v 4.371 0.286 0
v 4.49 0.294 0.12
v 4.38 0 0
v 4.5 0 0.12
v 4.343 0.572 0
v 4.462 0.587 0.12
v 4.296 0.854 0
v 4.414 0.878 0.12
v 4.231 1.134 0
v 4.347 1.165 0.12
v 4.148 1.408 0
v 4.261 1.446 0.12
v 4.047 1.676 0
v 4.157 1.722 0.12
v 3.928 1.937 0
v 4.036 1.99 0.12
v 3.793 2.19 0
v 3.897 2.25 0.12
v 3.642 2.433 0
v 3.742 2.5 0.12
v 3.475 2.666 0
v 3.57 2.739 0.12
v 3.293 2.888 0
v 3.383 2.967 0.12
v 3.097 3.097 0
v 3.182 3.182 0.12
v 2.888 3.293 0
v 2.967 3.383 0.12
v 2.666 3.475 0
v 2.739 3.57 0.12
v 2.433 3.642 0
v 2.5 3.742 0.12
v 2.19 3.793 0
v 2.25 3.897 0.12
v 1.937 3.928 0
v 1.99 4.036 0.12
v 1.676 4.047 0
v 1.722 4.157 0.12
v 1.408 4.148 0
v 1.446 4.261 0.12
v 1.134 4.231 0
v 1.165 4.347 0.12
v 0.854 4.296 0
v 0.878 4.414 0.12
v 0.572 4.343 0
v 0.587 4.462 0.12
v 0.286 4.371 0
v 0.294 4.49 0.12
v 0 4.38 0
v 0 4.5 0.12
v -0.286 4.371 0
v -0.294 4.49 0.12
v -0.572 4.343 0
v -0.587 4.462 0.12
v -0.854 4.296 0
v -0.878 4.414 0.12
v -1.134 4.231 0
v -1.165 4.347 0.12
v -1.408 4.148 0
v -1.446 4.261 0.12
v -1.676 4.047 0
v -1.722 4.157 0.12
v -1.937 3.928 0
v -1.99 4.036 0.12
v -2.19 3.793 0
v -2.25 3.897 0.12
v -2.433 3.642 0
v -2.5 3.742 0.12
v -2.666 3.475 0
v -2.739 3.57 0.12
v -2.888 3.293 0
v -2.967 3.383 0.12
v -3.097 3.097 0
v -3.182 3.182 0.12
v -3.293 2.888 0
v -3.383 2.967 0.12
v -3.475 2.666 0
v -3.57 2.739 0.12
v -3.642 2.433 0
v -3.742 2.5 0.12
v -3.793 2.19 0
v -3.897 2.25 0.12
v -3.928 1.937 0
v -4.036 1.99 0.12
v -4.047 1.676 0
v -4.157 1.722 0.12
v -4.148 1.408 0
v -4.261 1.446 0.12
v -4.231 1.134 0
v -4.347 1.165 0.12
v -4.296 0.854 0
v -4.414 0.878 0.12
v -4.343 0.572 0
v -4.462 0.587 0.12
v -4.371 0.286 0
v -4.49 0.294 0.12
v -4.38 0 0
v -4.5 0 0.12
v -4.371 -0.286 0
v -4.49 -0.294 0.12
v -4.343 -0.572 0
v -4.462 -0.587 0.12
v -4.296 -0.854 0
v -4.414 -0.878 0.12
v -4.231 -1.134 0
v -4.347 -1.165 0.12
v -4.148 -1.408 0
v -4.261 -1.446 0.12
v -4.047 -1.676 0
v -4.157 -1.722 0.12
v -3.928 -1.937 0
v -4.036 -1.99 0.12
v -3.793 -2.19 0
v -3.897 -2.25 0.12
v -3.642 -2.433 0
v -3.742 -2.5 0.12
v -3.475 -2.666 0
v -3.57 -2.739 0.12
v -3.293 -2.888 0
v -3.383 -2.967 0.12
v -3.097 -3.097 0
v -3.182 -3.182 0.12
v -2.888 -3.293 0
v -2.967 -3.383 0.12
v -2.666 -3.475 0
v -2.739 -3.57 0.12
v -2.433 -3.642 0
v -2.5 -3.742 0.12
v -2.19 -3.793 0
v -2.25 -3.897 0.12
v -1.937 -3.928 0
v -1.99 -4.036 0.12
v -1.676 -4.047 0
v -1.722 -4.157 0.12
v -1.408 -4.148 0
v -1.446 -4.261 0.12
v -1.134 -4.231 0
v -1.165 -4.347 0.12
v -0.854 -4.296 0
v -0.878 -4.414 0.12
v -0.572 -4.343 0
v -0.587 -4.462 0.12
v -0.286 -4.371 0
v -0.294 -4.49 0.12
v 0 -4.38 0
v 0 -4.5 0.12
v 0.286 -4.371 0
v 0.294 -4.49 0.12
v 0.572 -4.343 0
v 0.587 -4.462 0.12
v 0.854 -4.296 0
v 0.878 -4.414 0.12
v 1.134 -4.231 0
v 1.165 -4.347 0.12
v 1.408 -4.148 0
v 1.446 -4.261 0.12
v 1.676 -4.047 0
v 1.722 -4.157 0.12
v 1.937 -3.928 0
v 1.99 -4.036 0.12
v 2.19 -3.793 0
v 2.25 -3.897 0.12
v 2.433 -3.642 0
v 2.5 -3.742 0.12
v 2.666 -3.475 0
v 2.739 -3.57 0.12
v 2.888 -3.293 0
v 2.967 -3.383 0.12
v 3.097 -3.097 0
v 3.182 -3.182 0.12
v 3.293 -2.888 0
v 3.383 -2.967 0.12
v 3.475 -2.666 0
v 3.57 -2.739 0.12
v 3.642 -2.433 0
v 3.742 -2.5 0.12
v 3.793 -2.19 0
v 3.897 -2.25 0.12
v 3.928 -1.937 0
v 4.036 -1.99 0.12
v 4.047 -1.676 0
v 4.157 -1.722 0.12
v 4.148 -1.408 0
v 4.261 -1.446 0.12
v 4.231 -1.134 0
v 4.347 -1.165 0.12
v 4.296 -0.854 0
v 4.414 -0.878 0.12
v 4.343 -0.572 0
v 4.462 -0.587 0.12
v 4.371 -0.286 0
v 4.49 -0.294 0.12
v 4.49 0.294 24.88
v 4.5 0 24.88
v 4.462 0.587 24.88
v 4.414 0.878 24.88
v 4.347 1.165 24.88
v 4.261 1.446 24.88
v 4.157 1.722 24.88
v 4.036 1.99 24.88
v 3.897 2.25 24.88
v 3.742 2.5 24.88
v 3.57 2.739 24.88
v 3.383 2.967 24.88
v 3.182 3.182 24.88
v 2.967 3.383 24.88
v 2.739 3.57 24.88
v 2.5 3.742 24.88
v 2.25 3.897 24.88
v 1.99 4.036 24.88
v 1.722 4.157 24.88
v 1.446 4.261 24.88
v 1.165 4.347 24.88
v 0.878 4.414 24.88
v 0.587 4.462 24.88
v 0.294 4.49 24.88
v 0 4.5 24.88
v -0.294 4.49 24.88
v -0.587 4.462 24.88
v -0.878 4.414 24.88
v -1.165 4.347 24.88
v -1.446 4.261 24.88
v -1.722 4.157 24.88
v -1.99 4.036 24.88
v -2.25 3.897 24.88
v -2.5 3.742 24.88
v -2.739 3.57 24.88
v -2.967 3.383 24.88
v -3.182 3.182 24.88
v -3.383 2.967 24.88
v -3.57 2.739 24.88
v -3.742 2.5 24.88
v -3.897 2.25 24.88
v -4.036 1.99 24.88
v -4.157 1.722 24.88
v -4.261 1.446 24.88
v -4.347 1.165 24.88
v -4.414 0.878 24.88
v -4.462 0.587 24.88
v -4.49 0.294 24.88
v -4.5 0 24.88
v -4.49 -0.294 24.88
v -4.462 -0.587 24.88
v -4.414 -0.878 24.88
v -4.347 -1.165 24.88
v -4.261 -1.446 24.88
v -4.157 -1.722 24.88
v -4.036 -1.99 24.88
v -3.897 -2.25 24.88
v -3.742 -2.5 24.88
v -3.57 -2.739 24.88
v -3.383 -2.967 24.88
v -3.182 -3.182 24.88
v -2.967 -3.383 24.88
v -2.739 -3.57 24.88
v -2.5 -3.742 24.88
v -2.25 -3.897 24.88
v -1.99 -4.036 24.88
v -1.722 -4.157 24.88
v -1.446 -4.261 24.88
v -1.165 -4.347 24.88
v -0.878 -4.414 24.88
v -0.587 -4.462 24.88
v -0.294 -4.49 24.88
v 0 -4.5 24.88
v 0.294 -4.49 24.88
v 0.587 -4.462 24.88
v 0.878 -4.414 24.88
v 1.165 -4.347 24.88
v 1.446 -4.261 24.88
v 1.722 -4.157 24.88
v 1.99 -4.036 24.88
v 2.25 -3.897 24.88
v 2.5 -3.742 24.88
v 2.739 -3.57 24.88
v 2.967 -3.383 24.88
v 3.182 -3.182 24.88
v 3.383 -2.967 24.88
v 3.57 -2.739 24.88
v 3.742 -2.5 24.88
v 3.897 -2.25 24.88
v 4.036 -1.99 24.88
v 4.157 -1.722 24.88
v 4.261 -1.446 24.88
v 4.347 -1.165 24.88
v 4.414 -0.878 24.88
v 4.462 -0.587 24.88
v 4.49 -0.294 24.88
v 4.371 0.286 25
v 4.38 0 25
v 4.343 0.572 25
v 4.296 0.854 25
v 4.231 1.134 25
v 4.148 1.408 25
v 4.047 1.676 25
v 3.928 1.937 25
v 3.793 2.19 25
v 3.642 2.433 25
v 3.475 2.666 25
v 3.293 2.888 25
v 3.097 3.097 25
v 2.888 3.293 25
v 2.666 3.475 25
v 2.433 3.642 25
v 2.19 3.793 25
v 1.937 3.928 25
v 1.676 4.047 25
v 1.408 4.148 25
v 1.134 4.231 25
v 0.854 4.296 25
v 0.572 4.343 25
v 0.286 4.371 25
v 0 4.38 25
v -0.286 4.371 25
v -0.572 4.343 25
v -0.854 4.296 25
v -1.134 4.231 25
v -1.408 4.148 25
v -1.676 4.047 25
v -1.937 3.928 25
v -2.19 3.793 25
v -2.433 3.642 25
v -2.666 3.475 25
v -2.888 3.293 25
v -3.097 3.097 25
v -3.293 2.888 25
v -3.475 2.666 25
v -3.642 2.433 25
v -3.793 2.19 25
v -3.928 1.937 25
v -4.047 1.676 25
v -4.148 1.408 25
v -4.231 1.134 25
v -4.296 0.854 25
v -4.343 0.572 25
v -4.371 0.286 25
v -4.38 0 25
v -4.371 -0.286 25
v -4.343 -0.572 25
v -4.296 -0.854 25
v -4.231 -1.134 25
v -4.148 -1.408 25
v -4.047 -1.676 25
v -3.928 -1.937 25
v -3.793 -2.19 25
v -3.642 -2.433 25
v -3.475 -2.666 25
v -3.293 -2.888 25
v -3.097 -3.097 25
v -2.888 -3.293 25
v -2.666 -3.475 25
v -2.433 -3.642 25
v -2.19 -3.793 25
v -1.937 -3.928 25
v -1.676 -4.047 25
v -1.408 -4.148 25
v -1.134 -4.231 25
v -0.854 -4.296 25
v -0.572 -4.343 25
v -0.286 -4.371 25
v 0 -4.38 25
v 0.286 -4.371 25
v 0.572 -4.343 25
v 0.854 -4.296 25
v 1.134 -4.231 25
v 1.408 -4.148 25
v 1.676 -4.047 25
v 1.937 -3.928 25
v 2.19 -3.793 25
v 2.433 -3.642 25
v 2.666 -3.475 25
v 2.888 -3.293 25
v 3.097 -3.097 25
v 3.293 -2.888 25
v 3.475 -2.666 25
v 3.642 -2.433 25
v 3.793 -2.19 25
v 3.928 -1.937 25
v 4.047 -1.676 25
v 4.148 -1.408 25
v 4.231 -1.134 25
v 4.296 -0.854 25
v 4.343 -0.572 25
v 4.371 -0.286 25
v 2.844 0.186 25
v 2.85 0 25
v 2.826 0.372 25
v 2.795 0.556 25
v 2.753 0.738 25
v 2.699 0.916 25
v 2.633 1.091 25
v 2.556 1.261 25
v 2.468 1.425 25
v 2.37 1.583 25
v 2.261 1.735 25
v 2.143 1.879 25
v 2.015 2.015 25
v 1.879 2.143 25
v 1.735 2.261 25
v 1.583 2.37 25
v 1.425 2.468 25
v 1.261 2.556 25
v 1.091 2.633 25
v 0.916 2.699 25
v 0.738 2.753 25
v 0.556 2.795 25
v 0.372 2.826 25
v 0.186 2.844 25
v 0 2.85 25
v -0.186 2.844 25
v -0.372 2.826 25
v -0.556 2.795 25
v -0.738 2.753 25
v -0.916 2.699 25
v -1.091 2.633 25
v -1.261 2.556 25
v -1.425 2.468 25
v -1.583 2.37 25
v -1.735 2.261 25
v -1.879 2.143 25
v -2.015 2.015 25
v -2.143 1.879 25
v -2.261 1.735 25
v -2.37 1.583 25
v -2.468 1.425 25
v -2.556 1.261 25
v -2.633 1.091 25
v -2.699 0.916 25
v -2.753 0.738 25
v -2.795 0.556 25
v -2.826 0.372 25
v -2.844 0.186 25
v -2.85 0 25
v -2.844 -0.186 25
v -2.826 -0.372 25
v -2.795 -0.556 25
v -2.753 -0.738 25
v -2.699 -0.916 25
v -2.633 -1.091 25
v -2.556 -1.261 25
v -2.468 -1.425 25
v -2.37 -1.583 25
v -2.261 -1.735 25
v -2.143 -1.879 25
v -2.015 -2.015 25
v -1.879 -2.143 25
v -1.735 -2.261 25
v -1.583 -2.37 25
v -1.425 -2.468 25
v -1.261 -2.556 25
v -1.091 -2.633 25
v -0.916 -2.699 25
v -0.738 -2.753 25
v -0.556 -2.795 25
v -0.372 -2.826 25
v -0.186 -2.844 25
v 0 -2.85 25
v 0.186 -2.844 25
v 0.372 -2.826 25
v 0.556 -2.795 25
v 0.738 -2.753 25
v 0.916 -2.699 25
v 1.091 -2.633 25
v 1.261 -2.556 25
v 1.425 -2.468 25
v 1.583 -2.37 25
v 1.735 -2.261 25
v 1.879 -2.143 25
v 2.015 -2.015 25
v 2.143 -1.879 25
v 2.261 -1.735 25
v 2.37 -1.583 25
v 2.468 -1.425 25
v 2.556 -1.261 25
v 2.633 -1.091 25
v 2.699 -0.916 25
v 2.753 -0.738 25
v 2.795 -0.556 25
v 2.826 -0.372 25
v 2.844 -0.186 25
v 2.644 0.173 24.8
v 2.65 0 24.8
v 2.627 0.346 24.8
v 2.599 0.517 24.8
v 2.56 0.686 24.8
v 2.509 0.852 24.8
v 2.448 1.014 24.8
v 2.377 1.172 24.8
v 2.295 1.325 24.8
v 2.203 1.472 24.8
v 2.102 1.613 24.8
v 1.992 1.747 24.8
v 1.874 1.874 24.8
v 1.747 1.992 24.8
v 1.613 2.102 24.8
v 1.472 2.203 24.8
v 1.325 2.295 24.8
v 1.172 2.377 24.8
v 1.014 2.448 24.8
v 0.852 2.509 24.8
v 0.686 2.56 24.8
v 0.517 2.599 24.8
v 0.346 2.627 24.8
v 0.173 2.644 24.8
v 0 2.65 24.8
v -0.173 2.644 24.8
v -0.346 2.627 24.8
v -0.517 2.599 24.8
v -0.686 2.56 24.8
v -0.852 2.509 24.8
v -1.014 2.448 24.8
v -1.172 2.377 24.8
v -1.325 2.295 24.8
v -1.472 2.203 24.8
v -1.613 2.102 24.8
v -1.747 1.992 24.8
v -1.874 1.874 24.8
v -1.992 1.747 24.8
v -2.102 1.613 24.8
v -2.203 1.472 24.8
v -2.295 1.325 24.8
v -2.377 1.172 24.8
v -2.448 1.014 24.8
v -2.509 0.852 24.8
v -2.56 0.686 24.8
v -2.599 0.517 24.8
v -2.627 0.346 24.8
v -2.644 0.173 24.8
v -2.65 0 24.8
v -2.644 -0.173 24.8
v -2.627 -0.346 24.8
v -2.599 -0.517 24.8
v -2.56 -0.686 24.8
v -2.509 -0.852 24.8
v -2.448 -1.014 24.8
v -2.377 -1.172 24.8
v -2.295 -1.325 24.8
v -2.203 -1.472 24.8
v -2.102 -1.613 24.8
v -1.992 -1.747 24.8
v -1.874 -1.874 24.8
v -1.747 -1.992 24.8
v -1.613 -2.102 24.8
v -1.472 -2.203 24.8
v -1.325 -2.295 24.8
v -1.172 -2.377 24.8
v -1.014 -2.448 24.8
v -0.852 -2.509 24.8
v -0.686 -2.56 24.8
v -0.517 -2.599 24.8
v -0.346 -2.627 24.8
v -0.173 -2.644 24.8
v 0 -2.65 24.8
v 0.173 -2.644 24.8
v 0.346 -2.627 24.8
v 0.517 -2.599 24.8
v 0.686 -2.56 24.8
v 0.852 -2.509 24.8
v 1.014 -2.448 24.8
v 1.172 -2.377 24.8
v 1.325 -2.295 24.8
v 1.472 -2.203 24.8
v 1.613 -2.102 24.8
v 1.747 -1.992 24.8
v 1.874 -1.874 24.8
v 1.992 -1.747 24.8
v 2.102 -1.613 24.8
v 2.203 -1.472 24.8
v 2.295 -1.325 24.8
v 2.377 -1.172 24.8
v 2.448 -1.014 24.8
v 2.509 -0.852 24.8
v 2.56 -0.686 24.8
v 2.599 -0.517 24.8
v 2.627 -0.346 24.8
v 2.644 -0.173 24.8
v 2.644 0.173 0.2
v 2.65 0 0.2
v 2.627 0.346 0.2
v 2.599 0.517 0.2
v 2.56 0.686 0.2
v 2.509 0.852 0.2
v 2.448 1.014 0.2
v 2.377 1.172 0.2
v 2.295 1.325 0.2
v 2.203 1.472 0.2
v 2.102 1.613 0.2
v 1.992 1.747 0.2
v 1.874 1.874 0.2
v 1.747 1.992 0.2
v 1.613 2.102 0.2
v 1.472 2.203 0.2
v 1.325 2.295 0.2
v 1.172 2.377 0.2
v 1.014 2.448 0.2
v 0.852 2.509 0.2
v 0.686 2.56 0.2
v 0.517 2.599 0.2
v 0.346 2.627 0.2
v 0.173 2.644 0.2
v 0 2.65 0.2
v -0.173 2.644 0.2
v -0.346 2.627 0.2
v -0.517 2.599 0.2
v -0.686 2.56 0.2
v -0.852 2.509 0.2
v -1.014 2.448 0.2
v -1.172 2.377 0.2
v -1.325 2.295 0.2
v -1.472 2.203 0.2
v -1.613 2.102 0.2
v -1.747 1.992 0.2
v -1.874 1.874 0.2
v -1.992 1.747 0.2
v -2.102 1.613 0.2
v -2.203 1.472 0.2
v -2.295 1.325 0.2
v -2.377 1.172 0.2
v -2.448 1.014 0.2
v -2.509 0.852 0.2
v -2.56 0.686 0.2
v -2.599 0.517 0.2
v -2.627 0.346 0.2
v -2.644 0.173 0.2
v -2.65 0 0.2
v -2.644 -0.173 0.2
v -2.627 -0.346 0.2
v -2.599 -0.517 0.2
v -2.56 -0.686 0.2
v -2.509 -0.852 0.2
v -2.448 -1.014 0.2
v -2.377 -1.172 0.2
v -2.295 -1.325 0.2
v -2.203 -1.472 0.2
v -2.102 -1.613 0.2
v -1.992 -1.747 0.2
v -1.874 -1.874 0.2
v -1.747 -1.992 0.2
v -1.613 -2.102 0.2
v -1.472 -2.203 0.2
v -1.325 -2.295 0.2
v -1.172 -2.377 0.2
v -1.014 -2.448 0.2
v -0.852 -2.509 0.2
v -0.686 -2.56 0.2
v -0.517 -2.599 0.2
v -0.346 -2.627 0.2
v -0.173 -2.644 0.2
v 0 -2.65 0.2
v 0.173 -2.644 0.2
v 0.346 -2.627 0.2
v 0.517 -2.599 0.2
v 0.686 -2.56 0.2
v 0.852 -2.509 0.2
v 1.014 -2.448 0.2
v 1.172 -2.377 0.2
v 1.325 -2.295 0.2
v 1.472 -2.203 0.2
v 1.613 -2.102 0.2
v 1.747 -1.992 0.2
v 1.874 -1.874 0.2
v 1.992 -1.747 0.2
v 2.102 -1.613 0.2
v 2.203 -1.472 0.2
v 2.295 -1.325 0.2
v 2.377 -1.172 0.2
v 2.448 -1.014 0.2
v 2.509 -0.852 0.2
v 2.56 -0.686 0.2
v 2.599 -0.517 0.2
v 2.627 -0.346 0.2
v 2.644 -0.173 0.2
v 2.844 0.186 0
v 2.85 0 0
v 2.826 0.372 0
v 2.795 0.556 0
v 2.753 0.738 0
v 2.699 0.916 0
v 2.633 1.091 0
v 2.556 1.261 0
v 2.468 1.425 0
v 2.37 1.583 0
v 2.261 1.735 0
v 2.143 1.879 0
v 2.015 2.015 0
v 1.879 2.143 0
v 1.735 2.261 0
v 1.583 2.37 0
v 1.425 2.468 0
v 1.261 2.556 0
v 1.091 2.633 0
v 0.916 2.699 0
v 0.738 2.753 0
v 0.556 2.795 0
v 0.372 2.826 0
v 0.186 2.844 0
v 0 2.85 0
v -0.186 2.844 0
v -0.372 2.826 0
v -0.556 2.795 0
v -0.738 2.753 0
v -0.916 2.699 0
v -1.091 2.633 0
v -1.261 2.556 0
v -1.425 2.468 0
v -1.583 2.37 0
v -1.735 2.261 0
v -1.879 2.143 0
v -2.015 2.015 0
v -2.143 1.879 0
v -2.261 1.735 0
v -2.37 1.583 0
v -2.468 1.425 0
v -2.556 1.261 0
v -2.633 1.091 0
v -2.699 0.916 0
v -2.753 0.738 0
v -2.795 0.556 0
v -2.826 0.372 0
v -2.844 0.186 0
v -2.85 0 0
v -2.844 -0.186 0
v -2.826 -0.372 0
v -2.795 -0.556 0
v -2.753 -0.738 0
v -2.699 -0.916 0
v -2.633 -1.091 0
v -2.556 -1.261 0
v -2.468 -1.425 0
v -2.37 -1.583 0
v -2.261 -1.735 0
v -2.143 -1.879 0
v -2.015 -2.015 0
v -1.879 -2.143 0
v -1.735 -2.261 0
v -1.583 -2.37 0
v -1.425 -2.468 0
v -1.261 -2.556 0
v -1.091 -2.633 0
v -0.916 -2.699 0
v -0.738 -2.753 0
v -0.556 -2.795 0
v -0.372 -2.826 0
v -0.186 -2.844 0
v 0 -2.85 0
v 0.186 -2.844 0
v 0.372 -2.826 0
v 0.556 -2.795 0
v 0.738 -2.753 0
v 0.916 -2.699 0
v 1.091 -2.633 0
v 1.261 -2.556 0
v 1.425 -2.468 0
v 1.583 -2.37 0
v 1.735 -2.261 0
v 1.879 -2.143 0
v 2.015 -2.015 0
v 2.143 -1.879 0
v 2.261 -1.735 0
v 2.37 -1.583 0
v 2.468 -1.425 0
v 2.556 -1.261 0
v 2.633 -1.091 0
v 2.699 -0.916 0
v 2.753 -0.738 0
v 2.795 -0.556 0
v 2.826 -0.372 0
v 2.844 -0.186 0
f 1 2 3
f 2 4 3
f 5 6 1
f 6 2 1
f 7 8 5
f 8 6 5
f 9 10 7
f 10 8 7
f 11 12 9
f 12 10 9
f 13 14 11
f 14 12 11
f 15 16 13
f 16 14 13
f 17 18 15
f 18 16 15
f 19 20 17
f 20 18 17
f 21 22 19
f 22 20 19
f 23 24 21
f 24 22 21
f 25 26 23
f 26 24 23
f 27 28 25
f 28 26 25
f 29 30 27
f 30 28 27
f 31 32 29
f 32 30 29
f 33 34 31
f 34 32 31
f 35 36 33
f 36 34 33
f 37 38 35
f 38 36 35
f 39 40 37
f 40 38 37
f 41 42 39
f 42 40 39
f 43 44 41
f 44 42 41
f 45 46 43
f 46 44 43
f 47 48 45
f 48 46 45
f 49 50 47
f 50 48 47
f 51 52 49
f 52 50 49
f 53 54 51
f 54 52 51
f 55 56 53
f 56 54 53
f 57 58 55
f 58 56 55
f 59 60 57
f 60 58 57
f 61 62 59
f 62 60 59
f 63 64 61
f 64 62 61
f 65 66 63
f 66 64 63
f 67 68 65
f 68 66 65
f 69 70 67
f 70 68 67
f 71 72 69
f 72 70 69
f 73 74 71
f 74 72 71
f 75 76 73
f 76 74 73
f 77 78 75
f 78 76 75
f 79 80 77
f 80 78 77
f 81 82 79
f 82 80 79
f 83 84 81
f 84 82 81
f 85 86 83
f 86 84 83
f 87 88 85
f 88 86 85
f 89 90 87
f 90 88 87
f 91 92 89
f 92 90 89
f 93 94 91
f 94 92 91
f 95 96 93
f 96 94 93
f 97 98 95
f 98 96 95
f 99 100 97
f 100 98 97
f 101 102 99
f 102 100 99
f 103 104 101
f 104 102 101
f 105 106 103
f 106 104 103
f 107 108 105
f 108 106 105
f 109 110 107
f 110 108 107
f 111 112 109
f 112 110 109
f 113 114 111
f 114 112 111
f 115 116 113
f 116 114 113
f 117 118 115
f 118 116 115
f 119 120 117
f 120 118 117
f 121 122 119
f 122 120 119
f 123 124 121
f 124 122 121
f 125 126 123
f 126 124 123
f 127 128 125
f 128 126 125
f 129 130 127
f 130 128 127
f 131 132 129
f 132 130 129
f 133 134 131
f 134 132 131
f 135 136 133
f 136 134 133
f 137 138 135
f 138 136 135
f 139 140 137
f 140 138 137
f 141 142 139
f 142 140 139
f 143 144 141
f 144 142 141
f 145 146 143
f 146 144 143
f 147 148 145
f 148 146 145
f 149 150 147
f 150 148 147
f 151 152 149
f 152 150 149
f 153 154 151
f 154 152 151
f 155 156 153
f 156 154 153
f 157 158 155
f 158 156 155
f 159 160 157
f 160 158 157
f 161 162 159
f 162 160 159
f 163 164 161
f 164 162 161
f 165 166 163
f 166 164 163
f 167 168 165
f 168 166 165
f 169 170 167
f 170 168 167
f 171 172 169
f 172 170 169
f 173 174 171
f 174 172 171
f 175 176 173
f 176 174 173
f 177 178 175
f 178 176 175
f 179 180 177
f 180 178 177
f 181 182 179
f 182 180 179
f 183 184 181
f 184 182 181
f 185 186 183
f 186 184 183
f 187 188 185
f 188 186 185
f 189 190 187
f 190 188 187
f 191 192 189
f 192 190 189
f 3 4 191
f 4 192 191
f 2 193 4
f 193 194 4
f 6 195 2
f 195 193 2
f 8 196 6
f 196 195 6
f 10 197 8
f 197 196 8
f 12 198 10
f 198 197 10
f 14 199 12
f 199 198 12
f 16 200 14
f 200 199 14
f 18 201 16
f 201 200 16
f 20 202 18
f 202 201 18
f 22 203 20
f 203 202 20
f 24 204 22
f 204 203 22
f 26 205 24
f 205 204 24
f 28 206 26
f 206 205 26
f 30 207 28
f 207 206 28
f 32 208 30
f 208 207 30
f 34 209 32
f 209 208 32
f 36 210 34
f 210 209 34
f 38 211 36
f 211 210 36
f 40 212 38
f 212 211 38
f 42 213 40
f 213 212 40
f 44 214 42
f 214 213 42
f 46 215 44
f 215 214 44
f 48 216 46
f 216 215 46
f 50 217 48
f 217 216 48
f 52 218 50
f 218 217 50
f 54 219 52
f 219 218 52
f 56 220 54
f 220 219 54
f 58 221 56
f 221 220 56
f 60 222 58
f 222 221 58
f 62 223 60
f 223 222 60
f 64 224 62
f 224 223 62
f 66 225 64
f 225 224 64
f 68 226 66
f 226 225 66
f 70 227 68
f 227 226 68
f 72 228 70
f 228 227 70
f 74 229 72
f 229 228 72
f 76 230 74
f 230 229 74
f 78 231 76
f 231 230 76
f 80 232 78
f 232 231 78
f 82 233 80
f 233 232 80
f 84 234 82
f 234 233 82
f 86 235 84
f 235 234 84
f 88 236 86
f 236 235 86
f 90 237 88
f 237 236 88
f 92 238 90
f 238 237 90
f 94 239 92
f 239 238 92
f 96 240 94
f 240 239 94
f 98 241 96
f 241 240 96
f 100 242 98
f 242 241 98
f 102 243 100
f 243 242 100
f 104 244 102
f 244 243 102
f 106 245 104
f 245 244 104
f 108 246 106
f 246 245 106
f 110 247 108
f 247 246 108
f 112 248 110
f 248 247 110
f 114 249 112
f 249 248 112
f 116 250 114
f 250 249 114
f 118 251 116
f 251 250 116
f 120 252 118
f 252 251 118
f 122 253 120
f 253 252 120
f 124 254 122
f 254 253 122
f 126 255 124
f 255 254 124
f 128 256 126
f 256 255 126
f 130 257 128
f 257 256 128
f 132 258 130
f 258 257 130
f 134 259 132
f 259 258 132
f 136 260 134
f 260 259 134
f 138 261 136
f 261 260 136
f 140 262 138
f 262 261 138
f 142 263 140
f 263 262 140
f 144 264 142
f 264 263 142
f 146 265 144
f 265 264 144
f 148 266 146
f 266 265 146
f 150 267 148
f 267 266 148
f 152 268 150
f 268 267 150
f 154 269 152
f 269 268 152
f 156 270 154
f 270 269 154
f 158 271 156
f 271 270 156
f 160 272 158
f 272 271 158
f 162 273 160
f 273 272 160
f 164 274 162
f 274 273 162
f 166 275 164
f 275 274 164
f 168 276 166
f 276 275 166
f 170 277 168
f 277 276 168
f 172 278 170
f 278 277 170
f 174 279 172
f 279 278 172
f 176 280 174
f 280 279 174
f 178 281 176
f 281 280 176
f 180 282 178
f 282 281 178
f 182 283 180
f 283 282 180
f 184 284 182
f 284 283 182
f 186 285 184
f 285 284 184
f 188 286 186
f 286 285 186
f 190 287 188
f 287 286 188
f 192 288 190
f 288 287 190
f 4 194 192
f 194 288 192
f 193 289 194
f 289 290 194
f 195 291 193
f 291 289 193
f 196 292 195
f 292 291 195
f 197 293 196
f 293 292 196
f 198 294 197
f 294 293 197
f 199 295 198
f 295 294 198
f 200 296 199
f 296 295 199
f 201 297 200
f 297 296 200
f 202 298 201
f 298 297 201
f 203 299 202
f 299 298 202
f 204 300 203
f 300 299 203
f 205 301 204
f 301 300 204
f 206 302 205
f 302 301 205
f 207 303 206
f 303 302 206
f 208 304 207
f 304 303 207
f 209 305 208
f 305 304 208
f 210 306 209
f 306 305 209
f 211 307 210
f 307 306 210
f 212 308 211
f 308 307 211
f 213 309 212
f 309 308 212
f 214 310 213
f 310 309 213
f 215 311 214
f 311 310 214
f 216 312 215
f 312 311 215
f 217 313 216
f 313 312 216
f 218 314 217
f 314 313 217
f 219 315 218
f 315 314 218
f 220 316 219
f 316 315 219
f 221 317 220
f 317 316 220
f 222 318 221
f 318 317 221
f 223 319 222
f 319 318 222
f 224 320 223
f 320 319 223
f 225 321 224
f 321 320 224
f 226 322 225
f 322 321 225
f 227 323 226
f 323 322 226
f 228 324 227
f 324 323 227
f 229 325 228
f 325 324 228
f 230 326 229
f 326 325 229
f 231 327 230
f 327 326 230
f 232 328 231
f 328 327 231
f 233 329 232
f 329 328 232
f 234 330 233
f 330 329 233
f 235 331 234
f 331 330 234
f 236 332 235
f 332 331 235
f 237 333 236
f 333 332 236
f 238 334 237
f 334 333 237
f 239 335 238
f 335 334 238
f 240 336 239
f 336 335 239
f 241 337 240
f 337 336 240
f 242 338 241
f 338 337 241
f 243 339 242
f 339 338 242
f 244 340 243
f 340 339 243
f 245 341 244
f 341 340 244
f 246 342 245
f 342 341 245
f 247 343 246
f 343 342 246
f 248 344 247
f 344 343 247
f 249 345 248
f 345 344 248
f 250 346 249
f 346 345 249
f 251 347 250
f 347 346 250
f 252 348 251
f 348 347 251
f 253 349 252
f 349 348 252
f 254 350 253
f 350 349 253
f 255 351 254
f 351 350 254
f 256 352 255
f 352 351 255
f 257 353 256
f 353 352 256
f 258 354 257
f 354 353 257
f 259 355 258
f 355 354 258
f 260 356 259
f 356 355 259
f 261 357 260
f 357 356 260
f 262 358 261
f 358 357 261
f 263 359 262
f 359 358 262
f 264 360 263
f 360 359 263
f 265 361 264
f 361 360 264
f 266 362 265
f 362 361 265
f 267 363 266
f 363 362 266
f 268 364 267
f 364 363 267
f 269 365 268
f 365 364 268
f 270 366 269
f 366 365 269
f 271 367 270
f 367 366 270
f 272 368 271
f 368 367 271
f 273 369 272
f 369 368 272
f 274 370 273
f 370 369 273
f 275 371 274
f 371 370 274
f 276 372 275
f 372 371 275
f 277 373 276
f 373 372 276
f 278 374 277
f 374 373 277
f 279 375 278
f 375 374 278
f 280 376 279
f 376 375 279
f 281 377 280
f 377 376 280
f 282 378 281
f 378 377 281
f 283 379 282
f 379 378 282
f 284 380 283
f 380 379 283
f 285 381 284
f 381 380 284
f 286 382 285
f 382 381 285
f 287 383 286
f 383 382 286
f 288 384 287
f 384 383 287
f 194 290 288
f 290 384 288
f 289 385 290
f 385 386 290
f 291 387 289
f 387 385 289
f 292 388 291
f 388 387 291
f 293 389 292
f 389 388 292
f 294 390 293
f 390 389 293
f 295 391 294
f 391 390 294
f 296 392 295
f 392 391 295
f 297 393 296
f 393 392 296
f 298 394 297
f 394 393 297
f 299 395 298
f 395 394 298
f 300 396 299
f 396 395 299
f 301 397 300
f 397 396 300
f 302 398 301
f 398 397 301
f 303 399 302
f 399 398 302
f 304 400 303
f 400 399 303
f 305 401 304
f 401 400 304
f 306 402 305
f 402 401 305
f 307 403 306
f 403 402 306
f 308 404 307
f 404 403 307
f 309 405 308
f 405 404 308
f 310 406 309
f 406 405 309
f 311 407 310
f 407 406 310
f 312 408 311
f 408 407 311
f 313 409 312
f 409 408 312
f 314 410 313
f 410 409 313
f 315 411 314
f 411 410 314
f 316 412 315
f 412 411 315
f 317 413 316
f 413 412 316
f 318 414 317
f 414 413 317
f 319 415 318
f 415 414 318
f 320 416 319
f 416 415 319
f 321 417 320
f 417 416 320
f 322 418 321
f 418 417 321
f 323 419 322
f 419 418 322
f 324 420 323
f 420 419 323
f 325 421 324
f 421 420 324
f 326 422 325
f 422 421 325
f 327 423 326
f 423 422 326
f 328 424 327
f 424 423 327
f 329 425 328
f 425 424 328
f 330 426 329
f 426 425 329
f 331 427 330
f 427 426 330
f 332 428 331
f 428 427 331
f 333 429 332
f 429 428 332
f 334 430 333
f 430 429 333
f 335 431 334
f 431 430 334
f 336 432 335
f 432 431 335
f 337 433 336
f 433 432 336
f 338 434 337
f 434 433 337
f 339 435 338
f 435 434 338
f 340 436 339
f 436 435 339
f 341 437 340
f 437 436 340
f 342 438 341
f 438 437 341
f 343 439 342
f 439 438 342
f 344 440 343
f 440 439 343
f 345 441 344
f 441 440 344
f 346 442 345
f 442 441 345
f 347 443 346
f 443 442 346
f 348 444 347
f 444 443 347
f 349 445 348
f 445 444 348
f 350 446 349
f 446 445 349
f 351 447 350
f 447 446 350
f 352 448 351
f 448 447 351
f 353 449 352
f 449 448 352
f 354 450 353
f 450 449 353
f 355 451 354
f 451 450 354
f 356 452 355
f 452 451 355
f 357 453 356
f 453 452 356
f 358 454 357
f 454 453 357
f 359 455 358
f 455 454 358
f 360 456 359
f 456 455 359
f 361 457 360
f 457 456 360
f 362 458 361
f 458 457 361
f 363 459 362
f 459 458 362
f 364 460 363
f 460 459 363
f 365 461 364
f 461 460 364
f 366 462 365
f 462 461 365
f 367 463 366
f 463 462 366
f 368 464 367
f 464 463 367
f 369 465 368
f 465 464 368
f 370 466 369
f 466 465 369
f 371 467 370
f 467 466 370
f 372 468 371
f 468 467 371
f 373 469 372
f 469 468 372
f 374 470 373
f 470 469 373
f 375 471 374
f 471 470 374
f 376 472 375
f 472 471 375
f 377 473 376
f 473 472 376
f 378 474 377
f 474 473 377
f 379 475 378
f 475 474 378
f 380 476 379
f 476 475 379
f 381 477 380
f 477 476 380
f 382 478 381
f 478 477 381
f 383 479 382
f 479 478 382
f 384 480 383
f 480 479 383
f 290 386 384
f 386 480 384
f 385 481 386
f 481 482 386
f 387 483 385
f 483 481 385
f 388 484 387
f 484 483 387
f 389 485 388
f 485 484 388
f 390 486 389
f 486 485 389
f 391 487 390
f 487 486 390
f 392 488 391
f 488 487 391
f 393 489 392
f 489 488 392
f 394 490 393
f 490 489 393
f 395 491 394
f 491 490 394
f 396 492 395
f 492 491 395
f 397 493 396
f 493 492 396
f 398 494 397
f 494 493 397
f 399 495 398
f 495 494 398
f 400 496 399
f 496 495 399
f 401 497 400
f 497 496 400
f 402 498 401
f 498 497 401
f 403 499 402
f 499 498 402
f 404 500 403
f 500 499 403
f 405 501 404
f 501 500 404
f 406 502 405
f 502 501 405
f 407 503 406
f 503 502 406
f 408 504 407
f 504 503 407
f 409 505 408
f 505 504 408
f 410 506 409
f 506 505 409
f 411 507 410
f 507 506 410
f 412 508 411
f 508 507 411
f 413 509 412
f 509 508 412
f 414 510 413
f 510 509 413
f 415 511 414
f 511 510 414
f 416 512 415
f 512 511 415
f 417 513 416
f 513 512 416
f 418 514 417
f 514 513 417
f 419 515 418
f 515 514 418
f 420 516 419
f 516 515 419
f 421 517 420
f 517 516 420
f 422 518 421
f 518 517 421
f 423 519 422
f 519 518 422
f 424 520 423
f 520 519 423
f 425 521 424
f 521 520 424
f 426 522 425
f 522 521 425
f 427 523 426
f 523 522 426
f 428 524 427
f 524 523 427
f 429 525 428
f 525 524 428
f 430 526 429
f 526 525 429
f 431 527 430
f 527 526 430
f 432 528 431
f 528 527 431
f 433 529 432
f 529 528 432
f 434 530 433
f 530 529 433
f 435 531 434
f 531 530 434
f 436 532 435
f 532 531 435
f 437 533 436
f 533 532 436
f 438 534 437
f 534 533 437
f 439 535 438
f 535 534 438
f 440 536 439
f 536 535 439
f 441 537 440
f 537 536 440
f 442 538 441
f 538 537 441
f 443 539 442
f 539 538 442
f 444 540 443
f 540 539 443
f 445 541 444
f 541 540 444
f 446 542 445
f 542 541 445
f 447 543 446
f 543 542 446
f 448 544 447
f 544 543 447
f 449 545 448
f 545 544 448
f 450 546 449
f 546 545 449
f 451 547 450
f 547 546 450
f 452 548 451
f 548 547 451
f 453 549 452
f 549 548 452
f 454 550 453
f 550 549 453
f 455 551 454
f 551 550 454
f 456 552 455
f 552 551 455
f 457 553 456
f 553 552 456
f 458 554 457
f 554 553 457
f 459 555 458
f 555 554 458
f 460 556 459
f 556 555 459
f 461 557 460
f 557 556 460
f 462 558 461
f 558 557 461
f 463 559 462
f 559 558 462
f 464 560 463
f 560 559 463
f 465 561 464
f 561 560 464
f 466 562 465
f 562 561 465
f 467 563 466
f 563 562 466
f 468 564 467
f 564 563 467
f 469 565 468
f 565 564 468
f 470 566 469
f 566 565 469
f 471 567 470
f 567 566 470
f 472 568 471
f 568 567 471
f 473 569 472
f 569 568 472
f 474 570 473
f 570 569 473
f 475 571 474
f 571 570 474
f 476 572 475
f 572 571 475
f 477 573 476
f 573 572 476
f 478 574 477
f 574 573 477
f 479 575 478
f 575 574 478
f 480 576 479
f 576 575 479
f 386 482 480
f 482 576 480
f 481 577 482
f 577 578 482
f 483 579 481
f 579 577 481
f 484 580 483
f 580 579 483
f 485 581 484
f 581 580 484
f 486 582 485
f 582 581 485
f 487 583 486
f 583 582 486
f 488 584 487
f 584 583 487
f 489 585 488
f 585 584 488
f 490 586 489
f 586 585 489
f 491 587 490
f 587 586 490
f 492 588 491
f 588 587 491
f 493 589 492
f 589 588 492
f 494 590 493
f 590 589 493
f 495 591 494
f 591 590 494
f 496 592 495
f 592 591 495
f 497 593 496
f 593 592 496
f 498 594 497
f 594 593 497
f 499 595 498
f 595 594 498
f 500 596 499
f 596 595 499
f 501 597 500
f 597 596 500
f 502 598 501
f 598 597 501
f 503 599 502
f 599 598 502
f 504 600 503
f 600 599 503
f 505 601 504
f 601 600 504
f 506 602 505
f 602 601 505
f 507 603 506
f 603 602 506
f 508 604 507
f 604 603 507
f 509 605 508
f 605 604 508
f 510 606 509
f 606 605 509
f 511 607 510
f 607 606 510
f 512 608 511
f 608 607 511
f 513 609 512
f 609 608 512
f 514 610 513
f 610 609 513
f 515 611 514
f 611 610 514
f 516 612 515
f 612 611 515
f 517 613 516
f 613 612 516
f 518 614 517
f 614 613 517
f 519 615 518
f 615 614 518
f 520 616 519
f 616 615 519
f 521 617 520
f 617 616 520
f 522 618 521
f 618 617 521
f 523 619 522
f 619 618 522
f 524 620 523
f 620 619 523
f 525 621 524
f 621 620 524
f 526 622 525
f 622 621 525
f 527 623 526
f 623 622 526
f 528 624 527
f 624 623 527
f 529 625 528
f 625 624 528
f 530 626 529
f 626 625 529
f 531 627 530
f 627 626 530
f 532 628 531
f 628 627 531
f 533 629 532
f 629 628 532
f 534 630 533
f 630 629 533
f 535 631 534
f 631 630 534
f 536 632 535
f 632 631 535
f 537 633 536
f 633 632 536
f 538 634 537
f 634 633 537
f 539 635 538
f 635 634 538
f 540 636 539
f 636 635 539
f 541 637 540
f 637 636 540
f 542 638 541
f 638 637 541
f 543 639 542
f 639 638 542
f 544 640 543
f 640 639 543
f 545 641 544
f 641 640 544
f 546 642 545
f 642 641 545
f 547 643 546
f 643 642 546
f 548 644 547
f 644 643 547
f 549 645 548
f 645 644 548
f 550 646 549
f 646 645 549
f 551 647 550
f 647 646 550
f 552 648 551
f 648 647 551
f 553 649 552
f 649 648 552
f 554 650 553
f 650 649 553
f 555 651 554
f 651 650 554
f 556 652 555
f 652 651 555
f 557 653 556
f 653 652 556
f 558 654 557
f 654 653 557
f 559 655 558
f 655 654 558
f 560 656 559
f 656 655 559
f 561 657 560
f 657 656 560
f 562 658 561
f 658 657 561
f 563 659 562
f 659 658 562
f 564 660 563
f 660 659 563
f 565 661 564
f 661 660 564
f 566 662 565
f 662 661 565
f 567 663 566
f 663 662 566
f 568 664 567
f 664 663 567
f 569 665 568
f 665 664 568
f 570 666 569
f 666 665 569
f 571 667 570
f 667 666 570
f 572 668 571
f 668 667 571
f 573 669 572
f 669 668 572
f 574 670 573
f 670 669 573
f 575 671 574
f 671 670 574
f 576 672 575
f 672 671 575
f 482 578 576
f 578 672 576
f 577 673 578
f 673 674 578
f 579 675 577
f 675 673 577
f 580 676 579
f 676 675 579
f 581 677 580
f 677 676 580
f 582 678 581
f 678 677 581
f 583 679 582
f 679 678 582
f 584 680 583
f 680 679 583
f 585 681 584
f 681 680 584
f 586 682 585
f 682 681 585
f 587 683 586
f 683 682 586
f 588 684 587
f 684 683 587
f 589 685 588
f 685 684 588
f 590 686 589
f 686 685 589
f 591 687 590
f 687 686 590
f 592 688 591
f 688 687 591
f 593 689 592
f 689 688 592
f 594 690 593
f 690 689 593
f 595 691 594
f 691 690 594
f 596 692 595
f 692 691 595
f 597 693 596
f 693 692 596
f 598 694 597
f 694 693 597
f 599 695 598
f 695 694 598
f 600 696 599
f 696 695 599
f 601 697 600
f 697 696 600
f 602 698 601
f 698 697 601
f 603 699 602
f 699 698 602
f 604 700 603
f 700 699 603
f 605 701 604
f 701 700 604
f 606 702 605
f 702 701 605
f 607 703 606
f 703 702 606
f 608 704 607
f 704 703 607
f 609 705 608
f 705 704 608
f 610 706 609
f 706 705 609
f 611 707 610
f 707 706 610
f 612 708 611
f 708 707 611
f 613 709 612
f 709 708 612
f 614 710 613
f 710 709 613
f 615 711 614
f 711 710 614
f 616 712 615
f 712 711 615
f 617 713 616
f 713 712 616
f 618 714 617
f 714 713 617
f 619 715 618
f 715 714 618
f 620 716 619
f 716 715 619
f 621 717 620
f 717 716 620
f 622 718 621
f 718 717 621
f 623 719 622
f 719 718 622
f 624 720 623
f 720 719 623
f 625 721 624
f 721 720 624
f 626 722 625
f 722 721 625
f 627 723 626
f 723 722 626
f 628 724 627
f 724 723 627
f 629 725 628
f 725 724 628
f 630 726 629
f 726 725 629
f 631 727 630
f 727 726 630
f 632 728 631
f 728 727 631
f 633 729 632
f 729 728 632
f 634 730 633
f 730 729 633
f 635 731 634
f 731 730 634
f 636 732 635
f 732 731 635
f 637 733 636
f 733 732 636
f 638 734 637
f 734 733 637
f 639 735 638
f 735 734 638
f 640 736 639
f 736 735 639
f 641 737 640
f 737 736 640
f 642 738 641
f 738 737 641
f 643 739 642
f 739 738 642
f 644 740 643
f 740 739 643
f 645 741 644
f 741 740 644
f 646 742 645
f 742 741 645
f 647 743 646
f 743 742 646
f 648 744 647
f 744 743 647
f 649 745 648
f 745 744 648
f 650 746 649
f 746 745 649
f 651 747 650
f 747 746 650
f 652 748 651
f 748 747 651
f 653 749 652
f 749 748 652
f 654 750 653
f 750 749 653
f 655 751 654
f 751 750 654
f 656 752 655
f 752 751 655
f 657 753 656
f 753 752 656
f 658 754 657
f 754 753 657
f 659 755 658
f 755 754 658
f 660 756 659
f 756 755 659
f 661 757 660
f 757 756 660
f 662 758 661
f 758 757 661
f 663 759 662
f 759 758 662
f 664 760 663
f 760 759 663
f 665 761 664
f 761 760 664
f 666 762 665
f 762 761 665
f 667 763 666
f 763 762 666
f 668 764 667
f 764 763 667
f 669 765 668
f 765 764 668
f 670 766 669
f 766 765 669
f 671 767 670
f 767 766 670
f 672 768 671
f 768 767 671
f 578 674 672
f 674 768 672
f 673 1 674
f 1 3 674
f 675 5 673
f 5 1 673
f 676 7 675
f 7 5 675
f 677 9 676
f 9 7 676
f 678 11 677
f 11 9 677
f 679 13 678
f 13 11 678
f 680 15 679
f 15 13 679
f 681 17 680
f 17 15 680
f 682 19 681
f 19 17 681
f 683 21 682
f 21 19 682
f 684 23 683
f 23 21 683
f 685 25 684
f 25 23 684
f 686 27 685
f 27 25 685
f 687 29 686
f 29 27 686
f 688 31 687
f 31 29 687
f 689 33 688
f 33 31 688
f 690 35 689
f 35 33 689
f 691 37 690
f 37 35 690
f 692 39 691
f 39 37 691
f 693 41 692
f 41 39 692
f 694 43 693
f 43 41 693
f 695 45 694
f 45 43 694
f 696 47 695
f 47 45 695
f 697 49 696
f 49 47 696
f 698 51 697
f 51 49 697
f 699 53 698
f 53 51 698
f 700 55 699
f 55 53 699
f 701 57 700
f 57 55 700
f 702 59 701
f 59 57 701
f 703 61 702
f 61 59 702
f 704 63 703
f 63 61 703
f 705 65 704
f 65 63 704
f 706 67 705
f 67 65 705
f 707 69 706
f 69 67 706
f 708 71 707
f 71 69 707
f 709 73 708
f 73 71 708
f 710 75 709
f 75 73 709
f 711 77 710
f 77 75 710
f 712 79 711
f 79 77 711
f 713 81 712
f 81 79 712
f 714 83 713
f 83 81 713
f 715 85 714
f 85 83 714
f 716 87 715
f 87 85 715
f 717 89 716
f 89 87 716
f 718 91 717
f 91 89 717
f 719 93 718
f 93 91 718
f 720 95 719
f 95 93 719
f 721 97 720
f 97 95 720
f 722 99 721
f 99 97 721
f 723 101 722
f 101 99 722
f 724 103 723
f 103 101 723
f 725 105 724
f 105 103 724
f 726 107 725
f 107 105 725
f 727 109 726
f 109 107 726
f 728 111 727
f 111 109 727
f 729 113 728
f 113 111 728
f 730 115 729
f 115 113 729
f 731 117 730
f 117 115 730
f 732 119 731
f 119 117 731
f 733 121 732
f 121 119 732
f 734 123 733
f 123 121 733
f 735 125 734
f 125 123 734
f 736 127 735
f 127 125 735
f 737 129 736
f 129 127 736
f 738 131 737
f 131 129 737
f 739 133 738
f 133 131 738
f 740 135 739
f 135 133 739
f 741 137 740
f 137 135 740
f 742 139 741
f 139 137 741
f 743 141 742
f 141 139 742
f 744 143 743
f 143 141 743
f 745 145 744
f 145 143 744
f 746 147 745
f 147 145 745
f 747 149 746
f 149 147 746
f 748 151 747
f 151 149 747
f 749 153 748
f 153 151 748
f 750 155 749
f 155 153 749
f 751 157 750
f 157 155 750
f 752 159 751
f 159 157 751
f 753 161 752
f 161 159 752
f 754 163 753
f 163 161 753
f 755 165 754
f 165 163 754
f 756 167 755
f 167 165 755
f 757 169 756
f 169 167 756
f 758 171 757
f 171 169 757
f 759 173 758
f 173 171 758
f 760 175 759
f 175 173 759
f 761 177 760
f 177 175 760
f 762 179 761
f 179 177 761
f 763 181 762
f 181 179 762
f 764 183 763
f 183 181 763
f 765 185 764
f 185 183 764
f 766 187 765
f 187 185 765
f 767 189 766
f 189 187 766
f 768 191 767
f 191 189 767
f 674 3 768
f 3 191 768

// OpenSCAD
// OOMP generic catalogue model; units: mm.
// Stud length is additional to body depth. Tapping depths are model assumptions.
variant = "full"; // [full, display]
family = "spacer";
connection_type = "plain";
depth_mm = 25;
stud_length_mm = 0;
tapped_depth_mm = 0;
bore_mm = 5.3;
outer_diameter_mm = 9;
across_flats_mm = 6;
thread_nominal_diameter_mm = 3;
thread_pitch_mm = 0.5;
edge_chamfer_mm = 0.12;
mouth_chamfer_mm = 0.2;
angular_segments = 96;
samples_per_pitch = 16;

// Boundary travels up the outside, then down any tapped/plain bore.
// Equal-height rings at shoulders form the annular shoulder faces.
n = angular_segments;
threaded = family == "standoff";
has_stud = connection_type == "stud_to_tapped" || connection_type == "stud_to_stud";
two_studs = connection_type == "stud_to_stud";
through = !threaded || connection_type == "tapped_to_tapped";
pitch = thread_pitch_mm;
diameter = threaded ? thread_nominal_diameter_mm : bore_mm;
minor = diameter - 5*sqrt(3)*pitch/8;
transition = mouth_chamfer_mm + (threaded ? 5*sqrt(3)*pitch/16 : 0);
tip_chamfer = mouth_chamfer_mm + 17*sqrt(3)*pitch/48;
function sorted(v) = len(v)<=1 ? v : let(p=v[0])
    concat(sorted([for(x=v) if(x<p-1e-8) x]), [p], sorted([for(x=v) if(x>p+1e-8) x]));
function reverse(v) = [for(i=[len(v)-1:-1:0]) v[i]];
function theta(i) = i*360/n;
function fract(x) = x-floor(x);
function phase_distance(i,z) = abs(fract(z/pitch-theta(i)/360+0.5)-0.5);
function thread_r(i,z) = minor/2 + min(5*sqrt(3)*pitch/16,
    max(0,(phase_distance(i,z)-0.125)*pitch*sqrt(3)));
function stud_r(i,z,tip) = min(diameter/2 - (variant=="full" ?
    min(17*sqrt(3)*pitch/48,max(0,(phase_distance(i,z)-0.0625)*pitch*sqrt(3))) : 0),
    diameter/2-tip_chamfer+abs(z-tip));
function body_r(i,z) = (threaded ? across_flats_mm/2/cos(theta(i)%60-30) : outer_diameter_mm/2)
    - max(0,edge_chamfer_mm-min(z,depth_mm-z));
function bore_r(i,z) = max(threaded ? (variant=="full" ? thread_r(i,z) : minor/2) : diameter/2,
    diameter/2+mouth_chamfer_mm-(through ? min(z,depth_mm-z) : depth_mm-z));
function stud_z(a,b,tip) = let(count=variant=="full" ? ceil(stud_length_mm/pitch*samples_per_pitch) : 1)
    sorted(concat([for(i=[0:count]) a+(b-a)*i/count], [tip==a ? tip+tip_chamfer : tip-tip_chamfer]));
body_z = sorted([0,edge_chamfer_mm,depth_mm-edge_chamfer_mm,depth_mm]);
low = through ? 0 : depth_mm-tapped_depth_mm;
count = threaded && variant=="full" ? ceil((depth_mm-low)/pitch*samples_per_pitch) : 1;
bore_z = two_studs ? [] : reverse(sorted(concat(
    [for(i=[0:count]) low+(depth_mm-low)*i/count],
    [depth_mm-mouth_chamfer_mm,depth_mm-transition],
    through ? [mouth_chamfer_mm,transition] : [])));
// Ring descriptors: [height, kind, tip]. Kind: 0 body, 1 stud, 2 bore.
rings = concat(
    has_stud ? [for(z=stud_z(-stud_length_mm,0,-stud_length_mm)) [z,1,-stud_length_mm]] : [],
    [for(z=body_z) [z,0,0]],
    two_studs ? [for(z=stud_z(depth_mm,depth_mm+stud_length_mm,depth_mm+stud_length_mm)) [z,1,depth_mm+stud_length_mm]] : [],
    [for(z=bore_z) [z,2,0]]);
function radius(i,ring) = ring[1]==0 ? body_r(i,ring[0]) :
    ring[1]==1 ? stud_r(i,ring[0],ring[2]) : bore_r(i,ring[0]);
points = concat([for(ring=rings) for(i=[0:n-1])
    [radius(i,ring)*cos(theta(i)),radius(i,ring)*sin(theta(i)),ring[0]]],
    through ? [] : [[0,0,rings[0][0]],[0,0,rings[len(rings)-1][0]]]);
center = len(rings)*n;
last = (len(rings)-1)*n;
// OpenSCAD winding is opposite to STL winding.
faces = concat(
    [for(j=[0:len(rings)-(through ? 1 : 2)]) for(i=[0:n-1]) each
        let(a=j*n+i,b=j*n+(i+1)%n,c=((j+1)%len(rings))*n+(i+1)%n,d=((j+1)%len(rings))*n+i)
        [[a,c,b],[a,d,c]]],
    through ? [] : [for(i=[0:n-1]) each let(k=(i+1)%n)
        [[center,i,k],[center+1,last+k,last+i]]]);
assert(family=="spacer" || family=="standoff");
assert(!threaded || connection_type=="tapped_to_tapped" || has_stud);
assert(depth_mm>0 && diameter>0 && pitch>0);
assert(variant=="full" || variant=="display");
assert(n>=24 && n%12==0 && samples_per_pitch>=8);
assert(mouth_chamfer_mm>0 && mouth_chamfer_mm<depth_mm/2);
assert(edge_chamfer_mm>=0 && edge_chamfer_mm<depth_mm/2);
assert(diameter+4*max(mouth_chamfer_mm,edge_chamfer_mm) < (threaded ? across_flats_mm : outer_diameter_mm));
assert(!has_stud || stud_length_mm>2*mouth_chamfer_mm);
assert(!through || !threaded || 2*transition<depth_mm);
assert(connection_type!="stud_to_tapped" || (tapped_depth_mm>transition && tapped_depth_mm<depth_mm));
color([0.86,0.85,0.81]) polyhedron(points=points,faces=faces,convexity=20);
